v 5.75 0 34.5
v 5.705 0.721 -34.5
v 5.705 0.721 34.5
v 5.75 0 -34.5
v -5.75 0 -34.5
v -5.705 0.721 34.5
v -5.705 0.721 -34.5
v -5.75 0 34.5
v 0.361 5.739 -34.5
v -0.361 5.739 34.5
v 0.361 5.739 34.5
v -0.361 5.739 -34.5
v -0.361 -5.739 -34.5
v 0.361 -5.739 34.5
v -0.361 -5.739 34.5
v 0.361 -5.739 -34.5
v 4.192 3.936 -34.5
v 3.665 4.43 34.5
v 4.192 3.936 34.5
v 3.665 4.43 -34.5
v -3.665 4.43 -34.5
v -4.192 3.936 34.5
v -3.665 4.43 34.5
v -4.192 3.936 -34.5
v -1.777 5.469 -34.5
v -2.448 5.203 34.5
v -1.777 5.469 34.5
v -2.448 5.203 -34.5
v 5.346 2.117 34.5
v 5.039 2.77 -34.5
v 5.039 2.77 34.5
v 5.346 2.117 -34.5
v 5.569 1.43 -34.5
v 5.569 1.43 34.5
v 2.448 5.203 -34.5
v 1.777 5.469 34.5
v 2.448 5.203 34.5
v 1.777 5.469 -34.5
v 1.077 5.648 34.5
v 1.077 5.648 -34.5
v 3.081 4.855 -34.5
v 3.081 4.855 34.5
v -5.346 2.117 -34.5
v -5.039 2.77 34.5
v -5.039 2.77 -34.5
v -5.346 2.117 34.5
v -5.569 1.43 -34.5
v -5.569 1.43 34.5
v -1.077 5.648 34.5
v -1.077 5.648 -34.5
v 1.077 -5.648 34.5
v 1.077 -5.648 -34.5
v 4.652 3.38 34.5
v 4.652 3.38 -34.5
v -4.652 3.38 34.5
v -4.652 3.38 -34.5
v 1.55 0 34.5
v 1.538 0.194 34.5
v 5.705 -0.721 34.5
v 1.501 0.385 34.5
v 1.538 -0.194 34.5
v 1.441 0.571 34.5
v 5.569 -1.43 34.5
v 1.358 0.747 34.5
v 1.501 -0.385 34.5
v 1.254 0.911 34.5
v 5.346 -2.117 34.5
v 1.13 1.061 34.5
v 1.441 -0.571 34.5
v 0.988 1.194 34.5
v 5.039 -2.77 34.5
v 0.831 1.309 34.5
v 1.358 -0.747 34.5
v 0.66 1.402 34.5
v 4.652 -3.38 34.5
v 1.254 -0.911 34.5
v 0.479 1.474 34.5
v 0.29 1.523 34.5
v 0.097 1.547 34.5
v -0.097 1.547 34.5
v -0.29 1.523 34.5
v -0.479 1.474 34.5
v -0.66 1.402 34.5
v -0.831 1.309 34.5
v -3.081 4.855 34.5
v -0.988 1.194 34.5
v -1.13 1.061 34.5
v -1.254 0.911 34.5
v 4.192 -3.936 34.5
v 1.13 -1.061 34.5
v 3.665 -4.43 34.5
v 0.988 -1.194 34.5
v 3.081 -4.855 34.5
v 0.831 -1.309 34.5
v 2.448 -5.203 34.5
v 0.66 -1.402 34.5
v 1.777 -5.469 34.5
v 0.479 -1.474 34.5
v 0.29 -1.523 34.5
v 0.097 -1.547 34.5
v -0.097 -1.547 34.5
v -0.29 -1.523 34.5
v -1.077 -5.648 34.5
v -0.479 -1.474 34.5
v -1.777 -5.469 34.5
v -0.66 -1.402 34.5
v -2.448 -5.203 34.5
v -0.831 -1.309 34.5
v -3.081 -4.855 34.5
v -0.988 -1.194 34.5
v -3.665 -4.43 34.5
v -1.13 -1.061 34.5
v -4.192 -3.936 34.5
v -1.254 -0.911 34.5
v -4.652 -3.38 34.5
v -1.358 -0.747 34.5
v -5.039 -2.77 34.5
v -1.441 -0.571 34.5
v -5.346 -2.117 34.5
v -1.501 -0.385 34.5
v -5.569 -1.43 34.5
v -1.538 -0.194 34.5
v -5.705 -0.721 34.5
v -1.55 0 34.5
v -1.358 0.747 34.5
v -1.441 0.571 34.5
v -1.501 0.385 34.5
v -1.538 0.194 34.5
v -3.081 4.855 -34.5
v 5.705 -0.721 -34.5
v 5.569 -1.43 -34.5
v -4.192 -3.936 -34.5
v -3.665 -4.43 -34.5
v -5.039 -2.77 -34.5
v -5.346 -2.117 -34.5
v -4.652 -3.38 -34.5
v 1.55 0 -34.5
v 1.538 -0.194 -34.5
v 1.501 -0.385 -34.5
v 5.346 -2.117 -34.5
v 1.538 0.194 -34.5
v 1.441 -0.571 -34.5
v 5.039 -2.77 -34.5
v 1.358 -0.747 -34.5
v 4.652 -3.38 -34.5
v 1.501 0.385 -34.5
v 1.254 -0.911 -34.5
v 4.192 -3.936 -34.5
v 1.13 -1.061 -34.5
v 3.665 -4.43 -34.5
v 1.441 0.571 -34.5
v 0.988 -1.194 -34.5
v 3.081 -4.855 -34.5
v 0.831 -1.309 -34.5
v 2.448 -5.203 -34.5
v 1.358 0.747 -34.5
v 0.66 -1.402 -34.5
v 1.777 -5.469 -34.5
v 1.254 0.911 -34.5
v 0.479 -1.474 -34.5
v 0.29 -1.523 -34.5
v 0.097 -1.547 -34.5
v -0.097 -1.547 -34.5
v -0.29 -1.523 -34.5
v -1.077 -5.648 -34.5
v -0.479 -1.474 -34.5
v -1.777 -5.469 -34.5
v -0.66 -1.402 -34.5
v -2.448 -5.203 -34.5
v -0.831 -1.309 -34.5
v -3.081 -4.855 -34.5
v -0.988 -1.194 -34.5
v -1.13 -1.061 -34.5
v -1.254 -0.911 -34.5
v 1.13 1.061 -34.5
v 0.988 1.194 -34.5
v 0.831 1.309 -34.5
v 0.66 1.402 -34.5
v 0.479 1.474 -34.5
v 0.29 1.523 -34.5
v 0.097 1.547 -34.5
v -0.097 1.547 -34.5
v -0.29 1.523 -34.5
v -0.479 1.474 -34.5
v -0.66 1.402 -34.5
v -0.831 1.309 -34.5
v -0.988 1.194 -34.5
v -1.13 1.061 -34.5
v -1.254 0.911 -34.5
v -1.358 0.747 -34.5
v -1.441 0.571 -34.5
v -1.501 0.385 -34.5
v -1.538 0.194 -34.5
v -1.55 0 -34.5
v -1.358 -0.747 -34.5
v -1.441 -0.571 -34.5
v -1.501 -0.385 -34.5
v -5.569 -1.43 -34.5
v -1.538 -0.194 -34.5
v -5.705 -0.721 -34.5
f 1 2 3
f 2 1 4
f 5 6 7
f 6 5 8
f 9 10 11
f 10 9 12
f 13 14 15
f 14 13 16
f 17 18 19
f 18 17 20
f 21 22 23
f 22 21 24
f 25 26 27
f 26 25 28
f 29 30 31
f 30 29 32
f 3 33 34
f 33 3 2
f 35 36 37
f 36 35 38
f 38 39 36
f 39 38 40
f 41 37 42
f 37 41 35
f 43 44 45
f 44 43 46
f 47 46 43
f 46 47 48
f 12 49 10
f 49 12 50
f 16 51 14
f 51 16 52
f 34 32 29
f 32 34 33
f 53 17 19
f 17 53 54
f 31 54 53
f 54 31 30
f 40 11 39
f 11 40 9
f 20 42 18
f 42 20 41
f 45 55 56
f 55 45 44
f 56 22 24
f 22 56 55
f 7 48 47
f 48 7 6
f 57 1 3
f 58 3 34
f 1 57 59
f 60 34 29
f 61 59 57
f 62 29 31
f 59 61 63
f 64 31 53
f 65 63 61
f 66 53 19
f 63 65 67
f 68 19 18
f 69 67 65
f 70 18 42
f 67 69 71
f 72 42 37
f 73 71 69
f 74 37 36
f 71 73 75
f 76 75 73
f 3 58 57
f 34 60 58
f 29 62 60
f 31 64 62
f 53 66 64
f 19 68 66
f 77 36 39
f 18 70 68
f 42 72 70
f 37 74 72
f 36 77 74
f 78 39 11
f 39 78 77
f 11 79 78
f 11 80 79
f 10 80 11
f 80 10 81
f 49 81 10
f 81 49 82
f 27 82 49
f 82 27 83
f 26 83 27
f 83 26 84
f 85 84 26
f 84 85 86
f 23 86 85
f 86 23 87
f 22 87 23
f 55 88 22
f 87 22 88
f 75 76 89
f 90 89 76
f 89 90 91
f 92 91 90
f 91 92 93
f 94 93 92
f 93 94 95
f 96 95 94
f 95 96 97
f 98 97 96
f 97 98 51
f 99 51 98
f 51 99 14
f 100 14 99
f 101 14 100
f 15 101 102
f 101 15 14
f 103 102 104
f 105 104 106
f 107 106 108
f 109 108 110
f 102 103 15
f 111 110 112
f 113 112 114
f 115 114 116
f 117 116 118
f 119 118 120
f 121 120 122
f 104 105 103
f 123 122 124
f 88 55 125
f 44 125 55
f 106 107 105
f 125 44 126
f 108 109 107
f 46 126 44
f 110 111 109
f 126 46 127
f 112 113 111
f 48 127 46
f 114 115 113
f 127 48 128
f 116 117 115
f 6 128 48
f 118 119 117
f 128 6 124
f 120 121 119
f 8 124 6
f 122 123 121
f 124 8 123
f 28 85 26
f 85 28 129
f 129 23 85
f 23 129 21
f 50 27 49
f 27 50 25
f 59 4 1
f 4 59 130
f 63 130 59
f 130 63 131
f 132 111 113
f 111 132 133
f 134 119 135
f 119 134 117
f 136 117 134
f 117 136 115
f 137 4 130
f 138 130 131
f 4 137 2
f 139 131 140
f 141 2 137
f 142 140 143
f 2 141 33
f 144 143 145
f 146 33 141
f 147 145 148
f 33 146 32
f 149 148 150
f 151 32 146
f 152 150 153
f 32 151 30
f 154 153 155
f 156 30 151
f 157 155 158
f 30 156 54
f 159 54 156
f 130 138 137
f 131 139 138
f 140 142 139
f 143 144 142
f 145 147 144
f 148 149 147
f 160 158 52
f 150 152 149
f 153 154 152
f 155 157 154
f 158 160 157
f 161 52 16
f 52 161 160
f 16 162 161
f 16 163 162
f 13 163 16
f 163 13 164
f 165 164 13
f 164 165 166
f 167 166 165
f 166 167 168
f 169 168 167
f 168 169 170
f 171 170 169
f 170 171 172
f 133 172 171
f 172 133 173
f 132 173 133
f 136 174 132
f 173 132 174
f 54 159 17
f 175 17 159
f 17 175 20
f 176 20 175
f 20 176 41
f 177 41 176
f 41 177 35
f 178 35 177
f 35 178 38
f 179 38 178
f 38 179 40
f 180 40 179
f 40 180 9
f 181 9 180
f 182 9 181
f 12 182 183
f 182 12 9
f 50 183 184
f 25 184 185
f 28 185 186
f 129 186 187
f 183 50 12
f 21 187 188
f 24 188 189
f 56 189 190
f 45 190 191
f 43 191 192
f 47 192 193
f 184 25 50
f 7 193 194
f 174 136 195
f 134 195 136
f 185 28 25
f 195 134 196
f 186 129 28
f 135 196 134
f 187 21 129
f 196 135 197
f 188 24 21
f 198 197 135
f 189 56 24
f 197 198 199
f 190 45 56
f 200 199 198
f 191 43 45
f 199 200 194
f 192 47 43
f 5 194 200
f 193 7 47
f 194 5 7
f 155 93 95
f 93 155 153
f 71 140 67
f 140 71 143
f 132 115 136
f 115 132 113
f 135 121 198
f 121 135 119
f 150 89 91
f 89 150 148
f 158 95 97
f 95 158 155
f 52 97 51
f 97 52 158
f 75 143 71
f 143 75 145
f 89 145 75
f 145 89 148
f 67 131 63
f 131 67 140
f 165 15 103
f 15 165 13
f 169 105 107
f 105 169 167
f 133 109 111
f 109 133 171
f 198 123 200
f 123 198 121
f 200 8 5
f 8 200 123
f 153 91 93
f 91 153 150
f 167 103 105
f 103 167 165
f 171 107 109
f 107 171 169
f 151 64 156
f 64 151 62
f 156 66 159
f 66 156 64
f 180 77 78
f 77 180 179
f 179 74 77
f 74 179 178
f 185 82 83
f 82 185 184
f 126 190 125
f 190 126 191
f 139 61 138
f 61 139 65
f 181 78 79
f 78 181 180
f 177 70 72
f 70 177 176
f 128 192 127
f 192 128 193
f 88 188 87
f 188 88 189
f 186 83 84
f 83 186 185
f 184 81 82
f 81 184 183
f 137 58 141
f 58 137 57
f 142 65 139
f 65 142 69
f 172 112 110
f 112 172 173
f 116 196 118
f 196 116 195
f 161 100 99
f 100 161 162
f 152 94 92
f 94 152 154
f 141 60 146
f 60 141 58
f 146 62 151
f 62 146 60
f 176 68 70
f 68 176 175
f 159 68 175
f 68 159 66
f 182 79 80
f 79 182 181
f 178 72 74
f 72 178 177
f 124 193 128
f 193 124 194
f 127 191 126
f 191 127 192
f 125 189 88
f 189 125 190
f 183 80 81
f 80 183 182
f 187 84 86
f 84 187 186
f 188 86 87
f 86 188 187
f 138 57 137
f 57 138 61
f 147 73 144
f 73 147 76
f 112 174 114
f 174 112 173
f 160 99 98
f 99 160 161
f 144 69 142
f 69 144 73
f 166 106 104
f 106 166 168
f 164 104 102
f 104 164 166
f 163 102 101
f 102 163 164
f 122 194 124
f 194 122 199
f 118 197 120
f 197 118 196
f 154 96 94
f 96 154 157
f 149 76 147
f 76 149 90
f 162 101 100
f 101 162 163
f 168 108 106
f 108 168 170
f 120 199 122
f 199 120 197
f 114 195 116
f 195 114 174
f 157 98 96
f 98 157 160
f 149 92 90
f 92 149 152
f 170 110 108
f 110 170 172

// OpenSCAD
$fn = 50;


difference() {
	union() {
		translate(v = [0, 0, -34.5000000000]) {
			cylinder(h = 69, r = 5.7500000000);
		}
	}
	union() {
		translate(v = [0, 0, -100.0000000000]) {
			cylinder(h = 200, r = 1.5500000000);
		}
	}
}
